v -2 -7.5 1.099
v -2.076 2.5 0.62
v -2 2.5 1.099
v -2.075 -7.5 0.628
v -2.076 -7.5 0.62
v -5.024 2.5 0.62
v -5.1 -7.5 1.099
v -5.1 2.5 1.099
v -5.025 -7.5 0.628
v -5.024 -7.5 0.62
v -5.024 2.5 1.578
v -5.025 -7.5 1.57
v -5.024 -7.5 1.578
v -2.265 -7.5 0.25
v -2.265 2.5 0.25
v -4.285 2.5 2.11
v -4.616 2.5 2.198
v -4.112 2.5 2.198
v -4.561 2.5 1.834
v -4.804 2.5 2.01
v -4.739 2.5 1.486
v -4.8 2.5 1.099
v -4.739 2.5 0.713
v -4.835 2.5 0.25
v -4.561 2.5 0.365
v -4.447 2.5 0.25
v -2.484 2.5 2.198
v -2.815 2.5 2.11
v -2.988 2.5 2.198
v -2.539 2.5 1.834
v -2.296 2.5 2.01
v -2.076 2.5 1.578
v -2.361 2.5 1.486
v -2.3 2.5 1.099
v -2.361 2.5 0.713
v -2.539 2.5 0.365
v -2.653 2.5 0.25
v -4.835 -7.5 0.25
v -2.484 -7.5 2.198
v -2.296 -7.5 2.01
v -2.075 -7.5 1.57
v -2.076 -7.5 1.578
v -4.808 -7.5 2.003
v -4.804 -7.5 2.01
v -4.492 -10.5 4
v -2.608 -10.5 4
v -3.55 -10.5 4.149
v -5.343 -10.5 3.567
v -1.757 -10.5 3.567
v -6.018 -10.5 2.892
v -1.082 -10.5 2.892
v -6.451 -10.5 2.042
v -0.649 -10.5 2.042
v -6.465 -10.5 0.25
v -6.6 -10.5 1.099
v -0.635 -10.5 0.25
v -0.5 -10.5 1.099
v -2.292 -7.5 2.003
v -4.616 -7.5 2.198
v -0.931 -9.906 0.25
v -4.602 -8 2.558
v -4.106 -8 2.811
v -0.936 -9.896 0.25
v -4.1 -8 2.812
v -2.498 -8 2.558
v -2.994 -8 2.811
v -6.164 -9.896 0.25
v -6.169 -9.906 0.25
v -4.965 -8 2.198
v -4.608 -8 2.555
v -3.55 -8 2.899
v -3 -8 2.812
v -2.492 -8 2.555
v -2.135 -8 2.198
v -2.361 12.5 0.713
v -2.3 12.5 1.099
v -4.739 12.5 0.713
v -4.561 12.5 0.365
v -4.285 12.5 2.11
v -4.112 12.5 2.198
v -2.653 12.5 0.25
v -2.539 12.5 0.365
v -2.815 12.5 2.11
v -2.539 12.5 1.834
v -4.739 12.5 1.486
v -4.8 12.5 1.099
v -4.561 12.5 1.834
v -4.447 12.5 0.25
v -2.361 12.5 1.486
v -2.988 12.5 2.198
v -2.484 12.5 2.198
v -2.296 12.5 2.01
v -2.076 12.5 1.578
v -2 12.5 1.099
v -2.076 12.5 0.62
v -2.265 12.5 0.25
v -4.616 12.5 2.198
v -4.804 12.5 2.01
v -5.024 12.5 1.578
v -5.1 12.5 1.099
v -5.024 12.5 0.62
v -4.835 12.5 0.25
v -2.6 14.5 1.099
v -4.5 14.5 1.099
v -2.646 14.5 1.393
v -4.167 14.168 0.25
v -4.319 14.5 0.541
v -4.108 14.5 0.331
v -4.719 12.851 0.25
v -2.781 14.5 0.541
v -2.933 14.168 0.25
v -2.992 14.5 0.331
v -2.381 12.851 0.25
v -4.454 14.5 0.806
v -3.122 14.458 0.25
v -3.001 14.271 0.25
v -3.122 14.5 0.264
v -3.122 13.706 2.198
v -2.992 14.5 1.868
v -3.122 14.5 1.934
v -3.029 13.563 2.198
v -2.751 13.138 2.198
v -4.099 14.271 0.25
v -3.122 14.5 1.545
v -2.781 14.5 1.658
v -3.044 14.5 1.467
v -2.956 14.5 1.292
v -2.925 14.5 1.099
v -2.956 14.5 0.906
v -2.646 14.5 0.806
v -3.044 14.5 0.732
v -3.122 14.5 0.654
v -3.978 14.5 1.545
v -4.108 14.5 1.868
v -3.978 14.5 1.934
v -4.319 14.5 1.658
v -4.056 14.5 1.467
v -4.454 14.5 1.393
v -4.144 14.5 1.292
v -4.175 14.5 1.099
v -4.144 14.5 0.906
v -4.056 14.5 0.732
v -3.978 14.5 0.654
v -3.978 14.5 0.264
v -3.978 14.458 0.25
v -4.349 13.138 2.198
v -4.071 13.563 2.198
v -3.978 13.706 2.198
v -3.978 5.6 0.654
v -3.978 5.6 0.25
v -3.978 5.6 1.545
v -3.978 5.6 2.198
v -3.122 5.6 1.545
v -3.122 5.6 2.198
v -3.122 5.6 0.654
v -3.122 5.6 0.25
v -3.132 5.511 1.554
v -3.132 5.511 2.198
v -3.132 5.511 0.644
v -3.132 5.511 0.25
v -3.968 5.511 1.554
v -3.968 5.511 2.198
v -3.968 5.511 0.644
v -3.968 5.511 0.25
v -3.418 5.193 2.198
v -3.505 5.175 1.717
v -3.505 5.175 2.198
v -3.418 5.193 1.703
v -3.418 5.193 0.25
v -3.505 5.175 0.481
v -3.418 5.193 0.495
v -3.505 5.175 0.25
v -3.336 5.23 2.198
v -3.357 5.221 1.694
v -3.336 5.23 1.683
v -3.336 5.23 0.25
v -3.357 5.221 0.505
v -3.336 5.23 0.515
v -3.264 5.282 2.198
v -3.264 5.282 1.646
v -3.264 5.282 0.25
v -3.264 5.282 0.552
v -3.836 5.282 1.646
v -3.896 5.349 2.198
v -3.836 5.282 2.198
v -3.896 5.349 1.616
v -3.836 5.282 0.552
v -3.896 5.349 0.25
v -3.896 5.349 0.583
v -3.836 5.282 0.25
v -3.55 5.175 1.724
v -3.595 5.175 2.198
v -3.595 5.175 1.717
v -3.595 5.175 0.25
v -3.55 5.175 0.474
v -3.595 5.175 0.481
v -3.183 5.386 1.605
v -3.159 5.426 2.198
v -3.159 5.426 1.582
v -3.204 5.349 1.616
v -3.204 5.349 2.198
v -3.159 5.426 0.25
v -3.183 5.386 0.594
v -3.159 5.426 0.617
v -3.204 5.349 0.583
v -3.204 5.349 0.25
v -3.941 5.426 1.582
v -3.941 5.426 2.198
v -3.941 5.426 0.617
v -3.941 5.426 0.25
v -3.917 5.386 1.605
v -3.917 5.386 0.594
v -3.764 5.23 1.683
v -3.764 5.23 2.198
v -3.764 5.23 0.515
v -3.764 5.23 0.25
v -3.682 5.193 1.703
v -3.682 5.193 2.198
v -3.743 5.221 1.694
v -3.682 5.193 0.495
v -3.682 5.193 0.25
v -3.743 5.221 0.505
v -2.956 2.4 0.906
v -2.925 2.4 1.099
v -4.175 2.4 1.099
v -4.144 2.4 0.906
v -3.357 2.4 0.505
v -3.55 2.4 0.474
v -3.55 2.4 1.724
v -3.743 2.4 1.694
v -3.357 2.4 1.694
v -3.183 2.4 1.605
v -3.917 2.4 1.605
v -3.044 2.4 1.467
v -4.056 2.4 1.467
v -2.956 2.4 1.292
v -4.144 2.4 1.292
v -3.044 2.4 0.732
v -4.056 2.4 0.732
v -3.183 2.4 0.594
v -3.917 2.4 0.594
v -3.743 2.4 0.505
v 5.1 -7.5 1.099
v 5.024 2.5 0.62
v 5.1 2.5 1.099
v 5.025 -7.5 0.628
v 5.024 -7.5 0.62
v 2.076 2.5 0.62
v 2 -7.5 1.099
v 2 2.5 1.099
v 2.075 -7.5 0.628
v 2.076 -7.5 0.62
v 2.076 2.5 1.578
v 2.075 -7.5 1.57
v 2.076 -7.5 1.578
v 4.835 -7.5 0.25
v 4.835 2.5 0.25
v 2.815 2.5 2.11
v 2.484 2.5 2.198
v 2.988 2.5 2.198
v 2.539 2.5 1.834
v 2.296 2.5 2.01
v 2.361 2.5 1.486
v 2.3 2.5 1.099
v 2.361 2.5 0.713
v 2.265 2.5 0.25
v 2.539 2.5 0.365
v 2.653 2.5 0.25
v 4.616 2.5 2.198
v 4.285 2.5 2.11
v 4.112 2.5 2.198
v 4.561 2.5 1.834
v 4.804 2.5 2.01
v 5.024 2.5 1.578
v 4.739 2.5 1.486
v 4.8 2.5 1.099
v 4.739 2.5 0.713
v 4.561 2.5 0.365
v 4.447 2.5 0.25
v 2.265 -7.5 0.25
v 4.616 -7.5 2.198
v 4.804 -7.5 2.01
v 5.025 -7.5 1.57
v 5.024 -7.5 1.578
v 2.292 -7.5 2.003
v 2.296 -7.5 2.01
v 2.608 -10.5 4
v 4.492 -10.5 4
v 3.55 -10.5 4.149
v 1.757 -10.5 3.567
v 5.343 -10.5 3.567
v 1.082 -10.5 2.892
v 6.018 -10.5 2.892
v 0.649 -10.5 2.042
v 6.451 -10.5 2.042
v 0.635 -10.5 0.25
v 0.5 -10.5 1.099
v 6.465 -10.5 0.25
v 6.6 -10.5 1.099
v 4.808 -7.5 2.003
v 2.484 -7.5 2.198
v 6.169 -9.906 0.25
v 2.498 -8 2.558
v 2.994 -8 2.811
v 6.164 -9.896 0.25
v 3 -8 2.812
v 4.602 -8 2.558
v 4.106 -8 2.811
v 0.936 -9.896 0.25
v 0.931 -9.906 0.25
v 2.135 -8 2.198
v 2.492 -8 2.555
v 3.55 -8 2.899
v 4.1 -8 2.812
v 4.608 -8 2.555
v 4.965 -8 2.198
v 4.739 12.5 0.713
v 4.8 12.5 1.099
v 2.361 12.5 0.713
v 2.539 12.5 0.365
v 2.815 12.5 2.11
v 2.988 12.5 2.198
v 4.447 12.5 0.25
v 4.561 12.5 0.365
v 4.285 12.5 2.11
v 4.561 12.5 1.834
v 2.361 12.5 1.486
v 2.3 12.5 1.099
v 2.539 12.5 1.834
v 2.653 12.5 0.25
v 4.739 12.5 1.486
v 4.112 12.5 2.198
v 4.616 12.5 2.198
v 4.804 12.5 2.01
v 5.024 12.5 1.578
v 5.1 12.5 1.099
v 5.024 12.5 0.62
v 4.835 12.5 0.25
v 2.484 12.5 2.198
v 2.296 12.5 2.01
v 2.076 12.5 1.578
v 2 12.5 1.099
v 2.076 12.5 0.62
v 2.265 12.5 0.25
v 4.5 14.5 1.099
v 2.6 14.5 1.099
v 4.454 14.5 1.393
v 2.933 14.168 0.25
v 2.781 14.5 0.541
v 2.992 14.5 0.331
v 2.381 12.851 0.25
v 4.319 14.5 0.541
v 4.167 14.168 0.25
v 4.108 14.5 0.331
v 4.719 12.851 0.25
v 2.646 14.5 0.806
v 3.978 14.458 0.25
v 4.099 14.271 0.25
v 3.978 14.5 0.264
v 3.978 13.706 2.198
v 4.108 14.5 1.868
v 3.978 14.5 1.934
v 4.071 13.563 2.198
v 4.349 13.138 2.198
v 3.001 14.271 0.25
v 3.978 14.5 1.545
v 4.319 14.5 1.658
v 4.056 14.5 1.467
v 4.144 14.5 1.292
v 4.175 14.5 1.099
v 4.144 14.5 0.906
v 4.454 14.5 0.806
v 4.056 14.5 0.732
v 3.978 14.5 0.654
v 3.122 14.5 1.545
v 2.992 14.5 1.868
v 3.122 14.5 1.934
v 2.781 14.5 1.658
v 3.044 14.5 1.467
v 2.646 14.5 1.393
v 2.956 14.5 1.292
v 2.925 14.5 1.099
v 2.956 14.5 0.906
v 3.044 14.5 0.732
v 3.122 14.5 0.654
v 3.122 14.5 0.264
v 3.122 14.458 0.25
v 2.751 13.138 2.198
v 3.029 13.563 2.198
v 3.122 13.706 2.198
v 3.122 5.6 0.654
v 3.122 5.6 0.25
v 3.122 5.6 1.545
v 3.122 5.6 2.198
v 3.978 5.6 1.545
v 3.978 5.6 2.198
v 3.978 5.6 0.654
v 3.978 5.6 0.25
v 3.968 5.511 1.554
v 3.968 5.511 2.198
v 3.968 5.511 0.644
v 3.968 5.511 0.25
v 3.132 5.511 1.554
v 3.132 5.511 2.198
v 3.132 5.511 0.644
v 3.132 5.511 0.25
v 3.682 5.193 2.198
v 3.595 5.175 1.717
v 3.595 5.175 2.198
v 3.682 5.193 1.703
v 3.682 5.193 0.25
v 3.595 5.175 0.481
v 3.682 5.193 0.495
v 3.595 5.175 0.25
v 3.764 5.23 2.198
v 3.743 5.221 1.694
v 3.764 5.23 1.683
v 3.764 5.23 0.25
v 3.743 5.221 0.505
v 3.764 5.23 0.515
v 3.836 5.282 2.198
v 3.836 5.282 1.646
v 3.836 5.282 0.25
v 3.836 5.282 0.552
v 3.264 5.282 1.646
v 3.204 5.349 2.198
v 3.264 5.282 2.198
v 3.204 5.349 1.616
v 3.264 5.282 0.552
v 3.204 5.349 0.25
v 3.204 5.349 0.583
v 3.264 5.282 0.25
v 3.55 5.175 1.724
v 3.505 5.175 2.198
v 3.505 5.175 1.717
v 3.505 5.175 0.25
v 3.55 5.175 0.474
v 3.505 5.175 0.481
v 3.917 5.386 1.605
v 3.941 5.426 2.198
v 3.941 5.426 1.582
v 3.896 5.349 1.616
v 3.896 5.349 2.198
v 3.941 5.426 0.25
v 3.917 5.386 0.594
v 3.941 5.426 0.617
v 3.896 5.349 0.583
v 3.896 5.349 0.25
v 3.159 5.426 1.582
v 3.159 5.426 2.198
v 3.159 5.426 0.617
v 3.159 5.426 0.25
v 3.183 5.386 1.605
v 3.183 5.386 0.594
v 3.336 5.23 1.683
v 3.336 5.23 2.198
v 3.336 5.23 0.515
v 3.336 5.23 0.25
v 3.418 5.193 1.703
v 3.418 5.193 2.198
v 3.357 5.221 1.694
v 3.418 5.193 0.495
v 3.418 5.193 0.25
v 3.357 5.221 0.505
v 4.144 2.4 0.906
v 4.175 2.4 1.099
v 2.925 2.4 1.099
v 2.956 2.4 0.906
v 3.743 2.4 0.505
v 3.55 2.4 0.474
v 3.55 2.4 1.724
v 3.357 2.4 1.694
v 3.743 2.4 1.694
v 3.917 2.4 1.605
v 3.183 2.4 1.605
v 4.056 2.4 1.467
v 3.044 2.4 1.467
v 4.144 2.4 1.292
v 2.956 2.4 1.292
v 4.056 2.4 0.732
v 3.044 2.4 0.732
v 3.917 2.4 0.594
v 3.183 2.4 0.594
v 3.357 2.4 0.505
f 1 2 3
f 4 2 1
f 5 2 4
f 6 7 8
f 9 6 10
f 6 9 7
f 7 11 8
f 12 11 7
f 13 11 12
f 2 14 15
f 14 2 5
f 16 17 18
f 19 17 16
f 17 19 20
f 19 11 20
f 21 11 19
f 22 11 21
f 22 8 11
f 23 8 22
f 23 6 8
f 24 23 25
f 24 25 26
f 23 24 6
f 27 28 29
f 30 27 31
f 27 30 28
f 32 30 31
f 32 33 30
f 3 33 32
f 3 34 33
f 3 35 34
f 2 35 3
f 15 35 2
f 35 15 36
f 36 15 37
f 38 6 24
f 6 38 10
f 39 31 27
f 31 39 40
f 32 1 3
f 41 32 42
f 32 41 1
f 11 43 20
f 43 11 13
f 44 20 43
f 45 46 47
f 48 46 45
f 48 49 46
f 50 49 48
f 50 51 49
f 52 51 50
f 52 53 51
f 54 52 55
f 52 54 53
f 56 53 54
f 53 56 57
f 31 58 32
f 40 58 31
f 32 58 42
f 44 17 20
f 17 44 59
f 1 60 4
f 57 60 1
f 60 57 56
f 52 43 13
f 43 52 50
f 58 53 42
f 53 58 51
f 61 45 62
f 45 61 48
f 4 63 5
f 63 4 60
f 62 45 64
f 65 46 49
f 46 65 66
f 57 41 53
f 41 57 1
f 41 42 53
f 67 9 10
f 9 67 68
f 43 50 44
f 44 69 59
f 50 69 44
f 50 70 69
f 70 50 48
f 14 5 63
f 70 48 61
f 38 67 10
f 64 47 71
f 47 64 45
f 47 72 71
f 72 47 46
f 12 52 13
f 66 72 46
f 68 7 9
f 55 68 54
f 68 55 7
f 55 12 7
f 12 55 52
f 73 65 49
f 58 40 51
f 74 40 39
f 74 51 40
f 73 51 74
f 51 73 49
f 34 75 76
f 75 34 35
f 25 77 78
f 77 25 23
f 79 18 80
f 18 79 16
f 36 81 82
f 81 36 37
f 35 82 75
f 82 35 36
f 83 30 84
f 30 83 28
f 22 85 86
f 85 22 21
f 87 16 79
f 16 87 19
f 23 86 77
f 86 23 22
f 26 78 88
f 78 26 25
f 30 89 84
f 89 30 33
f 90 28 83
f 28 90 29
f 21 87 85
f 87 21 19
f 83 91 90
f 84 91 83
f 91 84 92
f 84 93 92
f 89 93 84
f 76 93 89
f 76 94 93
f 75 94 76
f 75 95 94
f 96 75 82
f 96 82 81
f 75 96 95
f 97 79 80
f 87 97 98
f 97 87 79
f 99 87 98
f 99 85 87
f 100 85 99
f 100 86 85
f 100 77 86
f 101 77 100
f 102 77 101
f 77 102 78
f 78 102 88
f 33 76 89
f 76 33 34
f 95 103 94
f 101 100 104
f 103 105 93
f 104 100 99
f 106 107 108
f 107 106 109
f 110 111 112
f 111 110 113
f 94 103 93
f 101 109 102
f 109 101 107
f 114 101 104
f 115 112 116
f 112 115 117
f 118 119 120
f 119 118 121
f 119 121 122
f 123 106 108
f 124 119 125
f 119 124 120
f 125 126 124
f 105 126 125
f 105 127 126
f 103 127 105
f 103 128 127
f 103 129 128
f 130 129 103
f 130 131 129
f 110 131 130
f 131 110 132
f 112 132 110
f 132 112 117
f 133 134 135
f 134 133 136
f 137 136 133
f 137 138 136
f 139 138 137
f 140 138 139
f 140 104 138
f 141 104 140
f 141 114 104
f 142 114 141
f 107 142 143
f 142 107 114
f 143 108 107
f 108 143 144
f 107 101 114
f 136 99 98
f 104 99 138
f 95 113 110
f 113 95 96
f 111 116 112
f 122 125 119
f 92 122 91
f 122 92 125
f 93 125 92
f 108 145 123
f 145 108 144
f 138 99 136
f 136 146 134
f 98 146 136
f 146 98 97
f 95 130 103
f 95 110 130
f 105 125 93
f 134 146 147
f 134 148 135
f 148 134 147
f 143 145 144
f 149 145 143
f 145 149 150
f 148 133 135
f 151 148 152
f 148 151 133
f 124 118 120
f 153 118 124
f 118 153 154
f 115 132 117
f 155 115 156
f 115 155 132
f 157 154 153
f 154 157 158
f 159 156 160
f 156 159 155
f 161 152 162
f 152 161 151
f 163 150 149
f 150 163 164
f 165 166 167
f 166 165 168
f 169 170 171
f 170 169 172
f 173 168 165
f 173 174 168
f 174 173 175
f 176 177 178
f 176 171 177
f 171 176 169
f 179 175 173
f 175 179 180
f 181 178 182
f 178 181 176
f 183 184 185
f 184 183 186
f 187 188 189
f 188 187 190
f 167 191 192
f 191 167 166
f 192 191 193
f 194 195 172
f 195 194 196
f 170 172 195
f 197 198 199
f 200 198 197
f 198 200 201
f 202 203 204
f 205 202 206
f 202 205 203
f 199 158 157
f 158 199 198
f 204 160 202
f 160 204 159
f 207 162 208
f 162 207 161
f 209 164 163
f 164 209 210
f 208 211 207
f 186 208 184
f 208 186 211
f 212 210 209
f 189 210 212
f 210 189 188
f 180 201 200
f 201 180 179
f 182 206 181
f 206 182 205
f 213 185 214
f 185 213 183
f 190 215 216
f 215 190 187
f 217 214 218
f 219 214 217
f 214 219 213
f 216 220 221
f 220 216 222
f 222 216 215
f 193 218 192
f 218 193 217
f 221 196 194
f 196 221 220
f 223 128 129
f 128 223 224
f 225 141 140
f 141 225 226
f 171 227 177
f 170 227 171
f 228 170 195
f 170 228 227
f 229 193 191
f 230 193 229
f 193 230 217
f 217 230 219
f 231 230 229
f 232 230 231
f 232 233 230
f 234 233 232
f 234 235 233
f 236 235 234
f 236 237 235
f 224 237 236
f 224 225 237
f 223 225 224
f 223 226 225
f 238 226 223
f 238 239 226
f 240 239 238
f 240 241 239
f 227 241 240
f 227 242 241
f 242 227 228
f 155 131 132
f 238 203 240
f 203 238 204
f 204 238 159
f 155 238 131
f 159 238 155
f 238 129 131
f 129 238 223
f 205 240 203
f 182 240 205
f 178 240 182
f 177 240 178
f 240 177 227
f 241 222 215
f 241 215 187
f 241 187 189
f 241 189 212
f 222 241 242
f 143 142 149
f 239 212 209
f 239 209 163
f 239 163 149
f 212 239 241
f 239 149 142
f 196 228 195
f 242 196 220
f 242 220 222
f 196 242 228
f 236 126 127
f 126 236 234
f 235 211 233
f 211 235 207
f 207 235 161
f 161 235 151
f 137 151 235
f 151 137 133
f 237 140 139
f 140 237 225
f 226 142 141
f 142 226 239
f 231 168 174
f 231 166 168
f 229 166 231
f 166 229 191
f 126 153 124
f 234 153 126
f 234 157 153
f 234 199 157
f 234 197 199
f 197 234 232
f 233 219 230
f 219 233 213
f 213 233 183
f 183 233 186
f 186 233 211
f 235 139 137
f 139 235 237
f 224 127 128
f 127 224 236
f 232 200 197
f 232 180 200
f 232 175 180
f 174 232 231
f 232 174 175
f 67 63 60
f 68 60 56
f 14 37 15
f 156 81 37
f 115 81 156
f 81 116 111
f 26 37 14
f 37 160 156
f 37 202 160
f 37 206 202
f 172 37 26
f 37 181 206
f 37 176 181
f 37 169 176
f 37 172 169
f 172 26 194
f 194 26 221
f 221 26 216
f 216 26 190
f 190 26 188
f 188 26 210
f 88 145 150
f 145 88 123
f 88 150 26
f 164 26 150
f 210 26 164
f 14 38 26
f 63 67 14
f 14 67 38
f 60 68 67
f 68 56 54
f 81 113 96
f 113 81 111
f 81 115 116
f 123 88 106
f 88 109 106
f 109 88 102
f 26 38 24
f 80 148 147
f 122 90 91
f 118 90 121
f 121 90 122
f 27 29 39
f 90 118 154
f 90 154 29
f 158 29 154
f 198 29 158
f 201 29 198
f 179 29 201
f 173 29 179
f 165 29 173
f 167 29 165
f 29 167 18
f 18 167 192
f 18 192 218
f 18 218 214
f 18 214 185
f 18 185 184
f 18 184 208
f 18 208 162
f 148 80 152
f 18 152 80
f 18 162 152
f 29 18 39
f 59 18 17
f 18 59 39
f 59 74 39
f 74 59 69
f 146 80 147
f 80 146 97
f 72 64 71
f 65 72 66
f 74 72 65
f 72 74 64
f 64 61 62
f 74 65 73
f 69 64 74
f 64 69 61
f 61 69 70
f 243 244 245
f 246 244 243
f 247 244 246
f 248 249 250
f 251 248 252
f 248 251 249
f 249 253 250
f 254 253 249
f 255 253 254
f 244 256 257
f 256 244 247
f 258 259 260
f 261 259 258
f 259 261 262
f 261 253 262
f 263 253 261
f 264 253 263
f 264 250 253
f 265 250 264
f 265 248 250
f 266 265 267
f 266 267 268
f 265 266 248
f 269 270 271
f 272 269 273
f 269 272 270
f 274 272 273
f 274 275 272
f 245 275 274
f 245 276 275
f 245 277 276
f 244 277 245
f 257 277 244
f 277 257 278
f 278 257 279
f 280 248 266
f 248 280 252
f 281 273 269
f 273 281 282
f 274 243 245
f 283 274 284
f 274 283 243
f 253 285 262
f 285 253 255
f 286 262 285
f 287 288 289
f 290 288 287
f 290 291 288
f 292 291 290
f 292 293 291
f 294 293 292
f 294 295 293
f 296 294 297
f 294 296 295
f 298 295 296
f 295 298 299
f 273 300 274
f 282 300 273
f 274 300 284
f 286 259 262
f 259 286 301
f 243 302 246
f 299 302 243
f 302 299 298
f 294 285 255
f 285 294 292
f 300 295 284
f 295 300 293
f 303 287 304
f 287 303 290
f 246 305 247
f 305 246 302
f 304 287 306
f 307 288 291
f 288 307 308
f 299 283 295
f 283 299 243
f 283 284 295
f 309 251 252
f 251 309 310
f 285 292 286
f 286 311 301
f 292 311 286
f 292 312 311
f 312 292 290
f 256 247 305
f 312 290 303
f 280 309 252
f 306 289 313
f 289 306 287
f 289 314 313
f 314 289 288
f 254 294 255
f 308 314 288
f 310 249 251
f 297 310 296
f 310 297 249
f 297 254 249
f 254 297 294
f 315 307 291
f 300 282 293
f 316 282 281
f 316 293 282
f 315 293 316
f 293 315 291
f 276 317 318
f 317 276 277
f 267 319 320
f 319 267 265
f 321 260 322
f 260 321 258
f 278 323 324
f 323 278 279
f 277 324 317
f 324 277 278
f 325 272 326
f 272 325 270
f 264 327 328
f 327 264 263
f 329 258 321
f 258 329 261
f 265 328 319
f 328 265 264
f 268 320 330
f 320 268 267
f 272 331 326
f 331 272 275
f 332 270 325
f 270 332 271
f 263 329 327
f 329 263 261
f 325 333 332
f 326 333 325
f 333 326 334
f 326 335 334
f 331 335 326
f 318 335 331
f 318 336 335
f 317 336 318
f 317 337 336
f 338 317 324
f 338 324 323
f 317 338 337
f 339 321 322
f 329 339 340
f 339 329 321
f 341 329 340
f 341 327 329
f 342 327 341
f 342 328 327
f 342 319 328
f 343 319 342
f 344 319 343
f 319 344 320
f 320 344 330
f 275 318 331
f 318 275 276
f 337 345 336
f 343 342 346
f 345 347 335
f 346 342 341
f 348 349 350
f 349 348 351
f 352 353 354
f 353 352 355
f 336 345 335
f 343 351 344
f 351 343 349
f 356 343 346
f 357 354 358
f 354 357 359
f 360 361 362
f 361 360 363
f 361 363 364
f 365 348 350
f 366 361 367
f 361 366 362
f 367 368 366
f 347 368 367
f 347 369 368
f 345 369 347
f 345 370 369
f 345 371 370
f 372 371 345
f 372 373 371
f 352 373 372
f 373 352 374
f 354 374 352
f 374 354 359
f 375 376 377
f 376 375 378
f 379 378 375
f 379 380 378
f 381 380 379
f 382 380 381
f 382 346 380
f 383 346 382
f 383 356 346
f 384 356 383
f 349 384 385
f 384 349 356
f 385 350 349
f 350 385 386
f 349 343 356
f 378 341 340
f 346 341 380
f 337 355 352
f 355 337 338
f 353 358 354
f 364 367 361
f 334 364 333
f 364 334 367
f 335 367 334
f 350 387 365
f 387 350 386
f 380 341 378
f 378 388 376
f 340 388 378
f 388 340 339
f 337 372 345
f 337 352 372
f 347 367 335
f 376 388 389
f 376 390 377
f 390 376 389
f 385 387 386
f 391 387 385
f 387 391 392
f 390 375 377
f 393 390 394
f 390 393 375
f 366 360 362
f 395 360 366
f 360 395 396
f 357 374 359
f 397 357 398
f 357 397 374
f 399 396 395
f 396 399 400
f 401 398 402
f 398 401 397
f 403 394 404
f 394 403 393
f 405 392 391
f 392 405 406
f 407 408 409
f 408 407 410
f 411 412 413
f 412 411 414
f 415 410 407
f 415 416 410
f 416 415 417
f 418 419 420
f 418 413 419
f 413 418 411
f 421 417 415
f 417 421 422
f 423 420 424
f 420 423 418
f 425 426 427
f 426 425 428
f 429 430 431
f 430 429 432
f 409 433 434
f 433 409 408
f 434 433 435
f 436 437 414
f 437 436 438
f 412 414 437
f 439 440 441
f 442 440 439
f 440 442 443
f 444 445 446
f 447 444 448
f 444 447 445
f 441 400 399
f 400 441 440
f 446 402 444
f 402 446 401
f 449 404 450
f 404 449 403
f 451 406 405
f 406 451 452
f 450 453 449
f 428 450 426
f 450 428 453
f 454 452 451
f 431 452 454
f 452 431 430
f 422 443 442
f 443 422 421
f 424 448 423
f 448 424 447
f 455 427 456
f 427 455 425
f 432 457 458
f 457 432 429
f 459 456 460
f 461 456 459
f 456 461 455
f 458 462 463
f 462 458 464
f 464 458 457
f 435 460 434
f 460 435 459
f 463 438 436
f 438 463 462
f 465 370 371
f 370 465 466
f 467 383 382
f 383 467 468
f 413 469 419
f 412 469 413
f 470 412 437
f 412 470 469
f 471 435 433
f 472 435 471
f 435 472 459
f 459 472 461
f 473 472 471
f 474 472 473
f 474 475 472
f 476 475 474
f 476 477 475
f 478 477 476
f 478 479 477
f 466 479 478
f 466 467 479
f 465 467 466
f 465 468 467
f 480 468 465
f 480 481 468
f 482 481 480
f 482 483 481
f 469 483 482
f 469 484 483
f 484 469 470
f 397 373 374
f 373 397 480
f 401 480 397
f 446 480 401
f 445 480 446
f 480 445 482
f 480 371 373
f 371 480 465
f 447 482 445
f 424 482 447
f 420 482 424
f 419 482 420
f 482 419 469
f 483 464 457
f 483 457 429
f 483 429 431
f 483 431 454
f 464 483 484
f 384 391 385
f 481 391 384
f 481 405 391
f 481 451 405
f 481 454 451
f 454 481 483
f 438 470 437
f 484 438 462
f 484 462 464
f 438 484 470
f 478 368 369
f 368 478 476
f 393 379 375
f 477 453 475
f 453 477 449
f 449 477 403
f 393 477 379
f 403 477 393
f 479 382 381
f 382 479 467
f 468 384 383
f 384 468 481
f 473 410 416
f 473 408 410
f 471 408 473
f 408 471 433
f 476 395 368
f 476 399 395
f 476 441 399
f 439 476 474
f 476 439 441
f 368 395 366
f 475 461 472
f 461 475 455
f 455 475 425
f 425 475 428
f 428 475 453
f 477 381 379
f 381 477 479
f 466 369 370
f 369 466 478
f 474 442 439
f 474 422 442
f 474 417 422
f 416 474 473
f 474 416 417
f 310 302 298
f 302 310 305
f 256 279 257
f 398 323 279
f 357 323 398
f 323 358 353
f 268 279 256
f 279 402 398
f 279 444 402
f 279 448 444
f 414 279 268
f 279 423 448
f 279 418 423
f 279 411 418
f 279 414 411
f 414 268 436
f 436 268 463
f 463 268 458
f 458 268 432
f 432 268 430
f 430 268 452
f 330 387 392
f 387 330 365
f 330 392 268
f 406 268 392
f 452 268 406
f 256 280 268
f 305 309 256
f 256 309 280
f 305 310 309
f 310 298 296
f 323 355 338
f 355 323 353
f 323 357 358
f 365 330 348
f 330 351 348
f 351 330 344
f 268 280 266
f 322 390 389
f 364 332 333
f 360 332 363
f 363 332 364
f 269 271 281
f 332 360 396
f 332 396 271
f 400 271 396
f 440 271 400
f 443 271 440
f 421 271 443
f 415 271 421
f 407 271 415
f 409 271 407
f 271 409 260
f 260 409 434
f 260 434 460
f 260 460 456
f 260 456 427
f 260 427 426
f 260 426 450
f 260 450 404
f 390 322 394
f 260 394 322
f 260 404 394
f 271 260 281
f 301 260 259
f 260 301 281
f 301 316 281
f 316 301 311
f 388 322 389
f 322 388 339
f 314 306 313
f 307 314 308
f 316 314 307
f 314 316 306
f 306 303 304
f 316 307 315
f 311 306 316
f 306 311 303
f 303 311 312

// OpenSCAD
// Compact Board clip
// For Raspberry Pi Zero Test Controller (Brian Khuu 2019)
// Remixed from https://www.thingiverse.com/thing:1520316/files Board clip by robidouille Apr 27, 2016

//hole = 2.8; // Arduino
hole = 2.5; // Raspberry Pi

marginT = 0.6; // Controls the size of the grip
marginB = marginT;
skirt = 3;
rise = 10;
bump = 1;
thick = 13;

slotAngle = 20;
slot = hole * sin(slotAngle);
shave = hole * (1 - cos(slotAngle));

eps = 0.1;

Repeat(2, 1, hole + marginB + skirt + 1, rise + rise + 1) translate([0, 0, hole/2 - shave]) rotate([-90, 0, 0]) HoleClip();

module Repeat(count_x, count_y, size_x, size_y) {
	for (i = [0 : count_x - 1]) {
		for (j = [0 : count_y - 1]) {
			translate([(i - (count_x - 1) / 2) * size_x, (j - (count_y - 1) / 2) * size_y - size_y/2, 0])
			children();
		}
	}
}

module HoleClip() {
  union()
  {
    difference() {
        union() {
            cylinder( d = hole + marginB, h = thick, $fn=20);
            cylinder( d1 = hole + marginB + skirt, d2 = hole + marginB - skirt, h = skirt * 2, $fn=20);
            translate([0, 0, thick - eps])
              cylinder(d = hole, h = rise + eps, $fn=20);
            translate([0, 0, rise + thick]) 
              cylinder(d1 = hole + marginT, d2 = hole - marginT, h = bump * 2, $fn=20);
        }
        
        // Slot Cut
        slot_depth = 7+bump*2; // Adjust based on material
        translate([-slot / 2, -(hole + marginB + eps)/2, rise + thick + bump * 2 - slot_depth+eps]) cube([slot, hole + marginB + eps, slot_depth]);
        
        translate([0, +(hole + marginB + eps)/2, rise + thick + bump * 2 - slot_depth+eps])
          rotate([90,0,0]) cylinder(r=(slot)/2, h = hole + marginB + eps, $fn=30);


        // Center Cut
        translate([0, 0, thick - eps])
          cylinder(d = hole/2, h = rise + bump * 2 + 2, $fn=20);

        // Top and bottom cut
        translate([-(hole + marginB + skirt)/2, hole*4/10 - shave, -eps]) 
          cube([hole + marginB + skirt, marginB + skirt, rise + thick+bump * 2+10]);
        translate([-(hole + marginB + skirt)/2, -hole/2 + shave - (marginB + skirt), rise/4]) 
          cube([hole + marginB + skirt, marginB + skirt, rise +  rise + eps * 2 + bump*2]);
    }
  }
}
